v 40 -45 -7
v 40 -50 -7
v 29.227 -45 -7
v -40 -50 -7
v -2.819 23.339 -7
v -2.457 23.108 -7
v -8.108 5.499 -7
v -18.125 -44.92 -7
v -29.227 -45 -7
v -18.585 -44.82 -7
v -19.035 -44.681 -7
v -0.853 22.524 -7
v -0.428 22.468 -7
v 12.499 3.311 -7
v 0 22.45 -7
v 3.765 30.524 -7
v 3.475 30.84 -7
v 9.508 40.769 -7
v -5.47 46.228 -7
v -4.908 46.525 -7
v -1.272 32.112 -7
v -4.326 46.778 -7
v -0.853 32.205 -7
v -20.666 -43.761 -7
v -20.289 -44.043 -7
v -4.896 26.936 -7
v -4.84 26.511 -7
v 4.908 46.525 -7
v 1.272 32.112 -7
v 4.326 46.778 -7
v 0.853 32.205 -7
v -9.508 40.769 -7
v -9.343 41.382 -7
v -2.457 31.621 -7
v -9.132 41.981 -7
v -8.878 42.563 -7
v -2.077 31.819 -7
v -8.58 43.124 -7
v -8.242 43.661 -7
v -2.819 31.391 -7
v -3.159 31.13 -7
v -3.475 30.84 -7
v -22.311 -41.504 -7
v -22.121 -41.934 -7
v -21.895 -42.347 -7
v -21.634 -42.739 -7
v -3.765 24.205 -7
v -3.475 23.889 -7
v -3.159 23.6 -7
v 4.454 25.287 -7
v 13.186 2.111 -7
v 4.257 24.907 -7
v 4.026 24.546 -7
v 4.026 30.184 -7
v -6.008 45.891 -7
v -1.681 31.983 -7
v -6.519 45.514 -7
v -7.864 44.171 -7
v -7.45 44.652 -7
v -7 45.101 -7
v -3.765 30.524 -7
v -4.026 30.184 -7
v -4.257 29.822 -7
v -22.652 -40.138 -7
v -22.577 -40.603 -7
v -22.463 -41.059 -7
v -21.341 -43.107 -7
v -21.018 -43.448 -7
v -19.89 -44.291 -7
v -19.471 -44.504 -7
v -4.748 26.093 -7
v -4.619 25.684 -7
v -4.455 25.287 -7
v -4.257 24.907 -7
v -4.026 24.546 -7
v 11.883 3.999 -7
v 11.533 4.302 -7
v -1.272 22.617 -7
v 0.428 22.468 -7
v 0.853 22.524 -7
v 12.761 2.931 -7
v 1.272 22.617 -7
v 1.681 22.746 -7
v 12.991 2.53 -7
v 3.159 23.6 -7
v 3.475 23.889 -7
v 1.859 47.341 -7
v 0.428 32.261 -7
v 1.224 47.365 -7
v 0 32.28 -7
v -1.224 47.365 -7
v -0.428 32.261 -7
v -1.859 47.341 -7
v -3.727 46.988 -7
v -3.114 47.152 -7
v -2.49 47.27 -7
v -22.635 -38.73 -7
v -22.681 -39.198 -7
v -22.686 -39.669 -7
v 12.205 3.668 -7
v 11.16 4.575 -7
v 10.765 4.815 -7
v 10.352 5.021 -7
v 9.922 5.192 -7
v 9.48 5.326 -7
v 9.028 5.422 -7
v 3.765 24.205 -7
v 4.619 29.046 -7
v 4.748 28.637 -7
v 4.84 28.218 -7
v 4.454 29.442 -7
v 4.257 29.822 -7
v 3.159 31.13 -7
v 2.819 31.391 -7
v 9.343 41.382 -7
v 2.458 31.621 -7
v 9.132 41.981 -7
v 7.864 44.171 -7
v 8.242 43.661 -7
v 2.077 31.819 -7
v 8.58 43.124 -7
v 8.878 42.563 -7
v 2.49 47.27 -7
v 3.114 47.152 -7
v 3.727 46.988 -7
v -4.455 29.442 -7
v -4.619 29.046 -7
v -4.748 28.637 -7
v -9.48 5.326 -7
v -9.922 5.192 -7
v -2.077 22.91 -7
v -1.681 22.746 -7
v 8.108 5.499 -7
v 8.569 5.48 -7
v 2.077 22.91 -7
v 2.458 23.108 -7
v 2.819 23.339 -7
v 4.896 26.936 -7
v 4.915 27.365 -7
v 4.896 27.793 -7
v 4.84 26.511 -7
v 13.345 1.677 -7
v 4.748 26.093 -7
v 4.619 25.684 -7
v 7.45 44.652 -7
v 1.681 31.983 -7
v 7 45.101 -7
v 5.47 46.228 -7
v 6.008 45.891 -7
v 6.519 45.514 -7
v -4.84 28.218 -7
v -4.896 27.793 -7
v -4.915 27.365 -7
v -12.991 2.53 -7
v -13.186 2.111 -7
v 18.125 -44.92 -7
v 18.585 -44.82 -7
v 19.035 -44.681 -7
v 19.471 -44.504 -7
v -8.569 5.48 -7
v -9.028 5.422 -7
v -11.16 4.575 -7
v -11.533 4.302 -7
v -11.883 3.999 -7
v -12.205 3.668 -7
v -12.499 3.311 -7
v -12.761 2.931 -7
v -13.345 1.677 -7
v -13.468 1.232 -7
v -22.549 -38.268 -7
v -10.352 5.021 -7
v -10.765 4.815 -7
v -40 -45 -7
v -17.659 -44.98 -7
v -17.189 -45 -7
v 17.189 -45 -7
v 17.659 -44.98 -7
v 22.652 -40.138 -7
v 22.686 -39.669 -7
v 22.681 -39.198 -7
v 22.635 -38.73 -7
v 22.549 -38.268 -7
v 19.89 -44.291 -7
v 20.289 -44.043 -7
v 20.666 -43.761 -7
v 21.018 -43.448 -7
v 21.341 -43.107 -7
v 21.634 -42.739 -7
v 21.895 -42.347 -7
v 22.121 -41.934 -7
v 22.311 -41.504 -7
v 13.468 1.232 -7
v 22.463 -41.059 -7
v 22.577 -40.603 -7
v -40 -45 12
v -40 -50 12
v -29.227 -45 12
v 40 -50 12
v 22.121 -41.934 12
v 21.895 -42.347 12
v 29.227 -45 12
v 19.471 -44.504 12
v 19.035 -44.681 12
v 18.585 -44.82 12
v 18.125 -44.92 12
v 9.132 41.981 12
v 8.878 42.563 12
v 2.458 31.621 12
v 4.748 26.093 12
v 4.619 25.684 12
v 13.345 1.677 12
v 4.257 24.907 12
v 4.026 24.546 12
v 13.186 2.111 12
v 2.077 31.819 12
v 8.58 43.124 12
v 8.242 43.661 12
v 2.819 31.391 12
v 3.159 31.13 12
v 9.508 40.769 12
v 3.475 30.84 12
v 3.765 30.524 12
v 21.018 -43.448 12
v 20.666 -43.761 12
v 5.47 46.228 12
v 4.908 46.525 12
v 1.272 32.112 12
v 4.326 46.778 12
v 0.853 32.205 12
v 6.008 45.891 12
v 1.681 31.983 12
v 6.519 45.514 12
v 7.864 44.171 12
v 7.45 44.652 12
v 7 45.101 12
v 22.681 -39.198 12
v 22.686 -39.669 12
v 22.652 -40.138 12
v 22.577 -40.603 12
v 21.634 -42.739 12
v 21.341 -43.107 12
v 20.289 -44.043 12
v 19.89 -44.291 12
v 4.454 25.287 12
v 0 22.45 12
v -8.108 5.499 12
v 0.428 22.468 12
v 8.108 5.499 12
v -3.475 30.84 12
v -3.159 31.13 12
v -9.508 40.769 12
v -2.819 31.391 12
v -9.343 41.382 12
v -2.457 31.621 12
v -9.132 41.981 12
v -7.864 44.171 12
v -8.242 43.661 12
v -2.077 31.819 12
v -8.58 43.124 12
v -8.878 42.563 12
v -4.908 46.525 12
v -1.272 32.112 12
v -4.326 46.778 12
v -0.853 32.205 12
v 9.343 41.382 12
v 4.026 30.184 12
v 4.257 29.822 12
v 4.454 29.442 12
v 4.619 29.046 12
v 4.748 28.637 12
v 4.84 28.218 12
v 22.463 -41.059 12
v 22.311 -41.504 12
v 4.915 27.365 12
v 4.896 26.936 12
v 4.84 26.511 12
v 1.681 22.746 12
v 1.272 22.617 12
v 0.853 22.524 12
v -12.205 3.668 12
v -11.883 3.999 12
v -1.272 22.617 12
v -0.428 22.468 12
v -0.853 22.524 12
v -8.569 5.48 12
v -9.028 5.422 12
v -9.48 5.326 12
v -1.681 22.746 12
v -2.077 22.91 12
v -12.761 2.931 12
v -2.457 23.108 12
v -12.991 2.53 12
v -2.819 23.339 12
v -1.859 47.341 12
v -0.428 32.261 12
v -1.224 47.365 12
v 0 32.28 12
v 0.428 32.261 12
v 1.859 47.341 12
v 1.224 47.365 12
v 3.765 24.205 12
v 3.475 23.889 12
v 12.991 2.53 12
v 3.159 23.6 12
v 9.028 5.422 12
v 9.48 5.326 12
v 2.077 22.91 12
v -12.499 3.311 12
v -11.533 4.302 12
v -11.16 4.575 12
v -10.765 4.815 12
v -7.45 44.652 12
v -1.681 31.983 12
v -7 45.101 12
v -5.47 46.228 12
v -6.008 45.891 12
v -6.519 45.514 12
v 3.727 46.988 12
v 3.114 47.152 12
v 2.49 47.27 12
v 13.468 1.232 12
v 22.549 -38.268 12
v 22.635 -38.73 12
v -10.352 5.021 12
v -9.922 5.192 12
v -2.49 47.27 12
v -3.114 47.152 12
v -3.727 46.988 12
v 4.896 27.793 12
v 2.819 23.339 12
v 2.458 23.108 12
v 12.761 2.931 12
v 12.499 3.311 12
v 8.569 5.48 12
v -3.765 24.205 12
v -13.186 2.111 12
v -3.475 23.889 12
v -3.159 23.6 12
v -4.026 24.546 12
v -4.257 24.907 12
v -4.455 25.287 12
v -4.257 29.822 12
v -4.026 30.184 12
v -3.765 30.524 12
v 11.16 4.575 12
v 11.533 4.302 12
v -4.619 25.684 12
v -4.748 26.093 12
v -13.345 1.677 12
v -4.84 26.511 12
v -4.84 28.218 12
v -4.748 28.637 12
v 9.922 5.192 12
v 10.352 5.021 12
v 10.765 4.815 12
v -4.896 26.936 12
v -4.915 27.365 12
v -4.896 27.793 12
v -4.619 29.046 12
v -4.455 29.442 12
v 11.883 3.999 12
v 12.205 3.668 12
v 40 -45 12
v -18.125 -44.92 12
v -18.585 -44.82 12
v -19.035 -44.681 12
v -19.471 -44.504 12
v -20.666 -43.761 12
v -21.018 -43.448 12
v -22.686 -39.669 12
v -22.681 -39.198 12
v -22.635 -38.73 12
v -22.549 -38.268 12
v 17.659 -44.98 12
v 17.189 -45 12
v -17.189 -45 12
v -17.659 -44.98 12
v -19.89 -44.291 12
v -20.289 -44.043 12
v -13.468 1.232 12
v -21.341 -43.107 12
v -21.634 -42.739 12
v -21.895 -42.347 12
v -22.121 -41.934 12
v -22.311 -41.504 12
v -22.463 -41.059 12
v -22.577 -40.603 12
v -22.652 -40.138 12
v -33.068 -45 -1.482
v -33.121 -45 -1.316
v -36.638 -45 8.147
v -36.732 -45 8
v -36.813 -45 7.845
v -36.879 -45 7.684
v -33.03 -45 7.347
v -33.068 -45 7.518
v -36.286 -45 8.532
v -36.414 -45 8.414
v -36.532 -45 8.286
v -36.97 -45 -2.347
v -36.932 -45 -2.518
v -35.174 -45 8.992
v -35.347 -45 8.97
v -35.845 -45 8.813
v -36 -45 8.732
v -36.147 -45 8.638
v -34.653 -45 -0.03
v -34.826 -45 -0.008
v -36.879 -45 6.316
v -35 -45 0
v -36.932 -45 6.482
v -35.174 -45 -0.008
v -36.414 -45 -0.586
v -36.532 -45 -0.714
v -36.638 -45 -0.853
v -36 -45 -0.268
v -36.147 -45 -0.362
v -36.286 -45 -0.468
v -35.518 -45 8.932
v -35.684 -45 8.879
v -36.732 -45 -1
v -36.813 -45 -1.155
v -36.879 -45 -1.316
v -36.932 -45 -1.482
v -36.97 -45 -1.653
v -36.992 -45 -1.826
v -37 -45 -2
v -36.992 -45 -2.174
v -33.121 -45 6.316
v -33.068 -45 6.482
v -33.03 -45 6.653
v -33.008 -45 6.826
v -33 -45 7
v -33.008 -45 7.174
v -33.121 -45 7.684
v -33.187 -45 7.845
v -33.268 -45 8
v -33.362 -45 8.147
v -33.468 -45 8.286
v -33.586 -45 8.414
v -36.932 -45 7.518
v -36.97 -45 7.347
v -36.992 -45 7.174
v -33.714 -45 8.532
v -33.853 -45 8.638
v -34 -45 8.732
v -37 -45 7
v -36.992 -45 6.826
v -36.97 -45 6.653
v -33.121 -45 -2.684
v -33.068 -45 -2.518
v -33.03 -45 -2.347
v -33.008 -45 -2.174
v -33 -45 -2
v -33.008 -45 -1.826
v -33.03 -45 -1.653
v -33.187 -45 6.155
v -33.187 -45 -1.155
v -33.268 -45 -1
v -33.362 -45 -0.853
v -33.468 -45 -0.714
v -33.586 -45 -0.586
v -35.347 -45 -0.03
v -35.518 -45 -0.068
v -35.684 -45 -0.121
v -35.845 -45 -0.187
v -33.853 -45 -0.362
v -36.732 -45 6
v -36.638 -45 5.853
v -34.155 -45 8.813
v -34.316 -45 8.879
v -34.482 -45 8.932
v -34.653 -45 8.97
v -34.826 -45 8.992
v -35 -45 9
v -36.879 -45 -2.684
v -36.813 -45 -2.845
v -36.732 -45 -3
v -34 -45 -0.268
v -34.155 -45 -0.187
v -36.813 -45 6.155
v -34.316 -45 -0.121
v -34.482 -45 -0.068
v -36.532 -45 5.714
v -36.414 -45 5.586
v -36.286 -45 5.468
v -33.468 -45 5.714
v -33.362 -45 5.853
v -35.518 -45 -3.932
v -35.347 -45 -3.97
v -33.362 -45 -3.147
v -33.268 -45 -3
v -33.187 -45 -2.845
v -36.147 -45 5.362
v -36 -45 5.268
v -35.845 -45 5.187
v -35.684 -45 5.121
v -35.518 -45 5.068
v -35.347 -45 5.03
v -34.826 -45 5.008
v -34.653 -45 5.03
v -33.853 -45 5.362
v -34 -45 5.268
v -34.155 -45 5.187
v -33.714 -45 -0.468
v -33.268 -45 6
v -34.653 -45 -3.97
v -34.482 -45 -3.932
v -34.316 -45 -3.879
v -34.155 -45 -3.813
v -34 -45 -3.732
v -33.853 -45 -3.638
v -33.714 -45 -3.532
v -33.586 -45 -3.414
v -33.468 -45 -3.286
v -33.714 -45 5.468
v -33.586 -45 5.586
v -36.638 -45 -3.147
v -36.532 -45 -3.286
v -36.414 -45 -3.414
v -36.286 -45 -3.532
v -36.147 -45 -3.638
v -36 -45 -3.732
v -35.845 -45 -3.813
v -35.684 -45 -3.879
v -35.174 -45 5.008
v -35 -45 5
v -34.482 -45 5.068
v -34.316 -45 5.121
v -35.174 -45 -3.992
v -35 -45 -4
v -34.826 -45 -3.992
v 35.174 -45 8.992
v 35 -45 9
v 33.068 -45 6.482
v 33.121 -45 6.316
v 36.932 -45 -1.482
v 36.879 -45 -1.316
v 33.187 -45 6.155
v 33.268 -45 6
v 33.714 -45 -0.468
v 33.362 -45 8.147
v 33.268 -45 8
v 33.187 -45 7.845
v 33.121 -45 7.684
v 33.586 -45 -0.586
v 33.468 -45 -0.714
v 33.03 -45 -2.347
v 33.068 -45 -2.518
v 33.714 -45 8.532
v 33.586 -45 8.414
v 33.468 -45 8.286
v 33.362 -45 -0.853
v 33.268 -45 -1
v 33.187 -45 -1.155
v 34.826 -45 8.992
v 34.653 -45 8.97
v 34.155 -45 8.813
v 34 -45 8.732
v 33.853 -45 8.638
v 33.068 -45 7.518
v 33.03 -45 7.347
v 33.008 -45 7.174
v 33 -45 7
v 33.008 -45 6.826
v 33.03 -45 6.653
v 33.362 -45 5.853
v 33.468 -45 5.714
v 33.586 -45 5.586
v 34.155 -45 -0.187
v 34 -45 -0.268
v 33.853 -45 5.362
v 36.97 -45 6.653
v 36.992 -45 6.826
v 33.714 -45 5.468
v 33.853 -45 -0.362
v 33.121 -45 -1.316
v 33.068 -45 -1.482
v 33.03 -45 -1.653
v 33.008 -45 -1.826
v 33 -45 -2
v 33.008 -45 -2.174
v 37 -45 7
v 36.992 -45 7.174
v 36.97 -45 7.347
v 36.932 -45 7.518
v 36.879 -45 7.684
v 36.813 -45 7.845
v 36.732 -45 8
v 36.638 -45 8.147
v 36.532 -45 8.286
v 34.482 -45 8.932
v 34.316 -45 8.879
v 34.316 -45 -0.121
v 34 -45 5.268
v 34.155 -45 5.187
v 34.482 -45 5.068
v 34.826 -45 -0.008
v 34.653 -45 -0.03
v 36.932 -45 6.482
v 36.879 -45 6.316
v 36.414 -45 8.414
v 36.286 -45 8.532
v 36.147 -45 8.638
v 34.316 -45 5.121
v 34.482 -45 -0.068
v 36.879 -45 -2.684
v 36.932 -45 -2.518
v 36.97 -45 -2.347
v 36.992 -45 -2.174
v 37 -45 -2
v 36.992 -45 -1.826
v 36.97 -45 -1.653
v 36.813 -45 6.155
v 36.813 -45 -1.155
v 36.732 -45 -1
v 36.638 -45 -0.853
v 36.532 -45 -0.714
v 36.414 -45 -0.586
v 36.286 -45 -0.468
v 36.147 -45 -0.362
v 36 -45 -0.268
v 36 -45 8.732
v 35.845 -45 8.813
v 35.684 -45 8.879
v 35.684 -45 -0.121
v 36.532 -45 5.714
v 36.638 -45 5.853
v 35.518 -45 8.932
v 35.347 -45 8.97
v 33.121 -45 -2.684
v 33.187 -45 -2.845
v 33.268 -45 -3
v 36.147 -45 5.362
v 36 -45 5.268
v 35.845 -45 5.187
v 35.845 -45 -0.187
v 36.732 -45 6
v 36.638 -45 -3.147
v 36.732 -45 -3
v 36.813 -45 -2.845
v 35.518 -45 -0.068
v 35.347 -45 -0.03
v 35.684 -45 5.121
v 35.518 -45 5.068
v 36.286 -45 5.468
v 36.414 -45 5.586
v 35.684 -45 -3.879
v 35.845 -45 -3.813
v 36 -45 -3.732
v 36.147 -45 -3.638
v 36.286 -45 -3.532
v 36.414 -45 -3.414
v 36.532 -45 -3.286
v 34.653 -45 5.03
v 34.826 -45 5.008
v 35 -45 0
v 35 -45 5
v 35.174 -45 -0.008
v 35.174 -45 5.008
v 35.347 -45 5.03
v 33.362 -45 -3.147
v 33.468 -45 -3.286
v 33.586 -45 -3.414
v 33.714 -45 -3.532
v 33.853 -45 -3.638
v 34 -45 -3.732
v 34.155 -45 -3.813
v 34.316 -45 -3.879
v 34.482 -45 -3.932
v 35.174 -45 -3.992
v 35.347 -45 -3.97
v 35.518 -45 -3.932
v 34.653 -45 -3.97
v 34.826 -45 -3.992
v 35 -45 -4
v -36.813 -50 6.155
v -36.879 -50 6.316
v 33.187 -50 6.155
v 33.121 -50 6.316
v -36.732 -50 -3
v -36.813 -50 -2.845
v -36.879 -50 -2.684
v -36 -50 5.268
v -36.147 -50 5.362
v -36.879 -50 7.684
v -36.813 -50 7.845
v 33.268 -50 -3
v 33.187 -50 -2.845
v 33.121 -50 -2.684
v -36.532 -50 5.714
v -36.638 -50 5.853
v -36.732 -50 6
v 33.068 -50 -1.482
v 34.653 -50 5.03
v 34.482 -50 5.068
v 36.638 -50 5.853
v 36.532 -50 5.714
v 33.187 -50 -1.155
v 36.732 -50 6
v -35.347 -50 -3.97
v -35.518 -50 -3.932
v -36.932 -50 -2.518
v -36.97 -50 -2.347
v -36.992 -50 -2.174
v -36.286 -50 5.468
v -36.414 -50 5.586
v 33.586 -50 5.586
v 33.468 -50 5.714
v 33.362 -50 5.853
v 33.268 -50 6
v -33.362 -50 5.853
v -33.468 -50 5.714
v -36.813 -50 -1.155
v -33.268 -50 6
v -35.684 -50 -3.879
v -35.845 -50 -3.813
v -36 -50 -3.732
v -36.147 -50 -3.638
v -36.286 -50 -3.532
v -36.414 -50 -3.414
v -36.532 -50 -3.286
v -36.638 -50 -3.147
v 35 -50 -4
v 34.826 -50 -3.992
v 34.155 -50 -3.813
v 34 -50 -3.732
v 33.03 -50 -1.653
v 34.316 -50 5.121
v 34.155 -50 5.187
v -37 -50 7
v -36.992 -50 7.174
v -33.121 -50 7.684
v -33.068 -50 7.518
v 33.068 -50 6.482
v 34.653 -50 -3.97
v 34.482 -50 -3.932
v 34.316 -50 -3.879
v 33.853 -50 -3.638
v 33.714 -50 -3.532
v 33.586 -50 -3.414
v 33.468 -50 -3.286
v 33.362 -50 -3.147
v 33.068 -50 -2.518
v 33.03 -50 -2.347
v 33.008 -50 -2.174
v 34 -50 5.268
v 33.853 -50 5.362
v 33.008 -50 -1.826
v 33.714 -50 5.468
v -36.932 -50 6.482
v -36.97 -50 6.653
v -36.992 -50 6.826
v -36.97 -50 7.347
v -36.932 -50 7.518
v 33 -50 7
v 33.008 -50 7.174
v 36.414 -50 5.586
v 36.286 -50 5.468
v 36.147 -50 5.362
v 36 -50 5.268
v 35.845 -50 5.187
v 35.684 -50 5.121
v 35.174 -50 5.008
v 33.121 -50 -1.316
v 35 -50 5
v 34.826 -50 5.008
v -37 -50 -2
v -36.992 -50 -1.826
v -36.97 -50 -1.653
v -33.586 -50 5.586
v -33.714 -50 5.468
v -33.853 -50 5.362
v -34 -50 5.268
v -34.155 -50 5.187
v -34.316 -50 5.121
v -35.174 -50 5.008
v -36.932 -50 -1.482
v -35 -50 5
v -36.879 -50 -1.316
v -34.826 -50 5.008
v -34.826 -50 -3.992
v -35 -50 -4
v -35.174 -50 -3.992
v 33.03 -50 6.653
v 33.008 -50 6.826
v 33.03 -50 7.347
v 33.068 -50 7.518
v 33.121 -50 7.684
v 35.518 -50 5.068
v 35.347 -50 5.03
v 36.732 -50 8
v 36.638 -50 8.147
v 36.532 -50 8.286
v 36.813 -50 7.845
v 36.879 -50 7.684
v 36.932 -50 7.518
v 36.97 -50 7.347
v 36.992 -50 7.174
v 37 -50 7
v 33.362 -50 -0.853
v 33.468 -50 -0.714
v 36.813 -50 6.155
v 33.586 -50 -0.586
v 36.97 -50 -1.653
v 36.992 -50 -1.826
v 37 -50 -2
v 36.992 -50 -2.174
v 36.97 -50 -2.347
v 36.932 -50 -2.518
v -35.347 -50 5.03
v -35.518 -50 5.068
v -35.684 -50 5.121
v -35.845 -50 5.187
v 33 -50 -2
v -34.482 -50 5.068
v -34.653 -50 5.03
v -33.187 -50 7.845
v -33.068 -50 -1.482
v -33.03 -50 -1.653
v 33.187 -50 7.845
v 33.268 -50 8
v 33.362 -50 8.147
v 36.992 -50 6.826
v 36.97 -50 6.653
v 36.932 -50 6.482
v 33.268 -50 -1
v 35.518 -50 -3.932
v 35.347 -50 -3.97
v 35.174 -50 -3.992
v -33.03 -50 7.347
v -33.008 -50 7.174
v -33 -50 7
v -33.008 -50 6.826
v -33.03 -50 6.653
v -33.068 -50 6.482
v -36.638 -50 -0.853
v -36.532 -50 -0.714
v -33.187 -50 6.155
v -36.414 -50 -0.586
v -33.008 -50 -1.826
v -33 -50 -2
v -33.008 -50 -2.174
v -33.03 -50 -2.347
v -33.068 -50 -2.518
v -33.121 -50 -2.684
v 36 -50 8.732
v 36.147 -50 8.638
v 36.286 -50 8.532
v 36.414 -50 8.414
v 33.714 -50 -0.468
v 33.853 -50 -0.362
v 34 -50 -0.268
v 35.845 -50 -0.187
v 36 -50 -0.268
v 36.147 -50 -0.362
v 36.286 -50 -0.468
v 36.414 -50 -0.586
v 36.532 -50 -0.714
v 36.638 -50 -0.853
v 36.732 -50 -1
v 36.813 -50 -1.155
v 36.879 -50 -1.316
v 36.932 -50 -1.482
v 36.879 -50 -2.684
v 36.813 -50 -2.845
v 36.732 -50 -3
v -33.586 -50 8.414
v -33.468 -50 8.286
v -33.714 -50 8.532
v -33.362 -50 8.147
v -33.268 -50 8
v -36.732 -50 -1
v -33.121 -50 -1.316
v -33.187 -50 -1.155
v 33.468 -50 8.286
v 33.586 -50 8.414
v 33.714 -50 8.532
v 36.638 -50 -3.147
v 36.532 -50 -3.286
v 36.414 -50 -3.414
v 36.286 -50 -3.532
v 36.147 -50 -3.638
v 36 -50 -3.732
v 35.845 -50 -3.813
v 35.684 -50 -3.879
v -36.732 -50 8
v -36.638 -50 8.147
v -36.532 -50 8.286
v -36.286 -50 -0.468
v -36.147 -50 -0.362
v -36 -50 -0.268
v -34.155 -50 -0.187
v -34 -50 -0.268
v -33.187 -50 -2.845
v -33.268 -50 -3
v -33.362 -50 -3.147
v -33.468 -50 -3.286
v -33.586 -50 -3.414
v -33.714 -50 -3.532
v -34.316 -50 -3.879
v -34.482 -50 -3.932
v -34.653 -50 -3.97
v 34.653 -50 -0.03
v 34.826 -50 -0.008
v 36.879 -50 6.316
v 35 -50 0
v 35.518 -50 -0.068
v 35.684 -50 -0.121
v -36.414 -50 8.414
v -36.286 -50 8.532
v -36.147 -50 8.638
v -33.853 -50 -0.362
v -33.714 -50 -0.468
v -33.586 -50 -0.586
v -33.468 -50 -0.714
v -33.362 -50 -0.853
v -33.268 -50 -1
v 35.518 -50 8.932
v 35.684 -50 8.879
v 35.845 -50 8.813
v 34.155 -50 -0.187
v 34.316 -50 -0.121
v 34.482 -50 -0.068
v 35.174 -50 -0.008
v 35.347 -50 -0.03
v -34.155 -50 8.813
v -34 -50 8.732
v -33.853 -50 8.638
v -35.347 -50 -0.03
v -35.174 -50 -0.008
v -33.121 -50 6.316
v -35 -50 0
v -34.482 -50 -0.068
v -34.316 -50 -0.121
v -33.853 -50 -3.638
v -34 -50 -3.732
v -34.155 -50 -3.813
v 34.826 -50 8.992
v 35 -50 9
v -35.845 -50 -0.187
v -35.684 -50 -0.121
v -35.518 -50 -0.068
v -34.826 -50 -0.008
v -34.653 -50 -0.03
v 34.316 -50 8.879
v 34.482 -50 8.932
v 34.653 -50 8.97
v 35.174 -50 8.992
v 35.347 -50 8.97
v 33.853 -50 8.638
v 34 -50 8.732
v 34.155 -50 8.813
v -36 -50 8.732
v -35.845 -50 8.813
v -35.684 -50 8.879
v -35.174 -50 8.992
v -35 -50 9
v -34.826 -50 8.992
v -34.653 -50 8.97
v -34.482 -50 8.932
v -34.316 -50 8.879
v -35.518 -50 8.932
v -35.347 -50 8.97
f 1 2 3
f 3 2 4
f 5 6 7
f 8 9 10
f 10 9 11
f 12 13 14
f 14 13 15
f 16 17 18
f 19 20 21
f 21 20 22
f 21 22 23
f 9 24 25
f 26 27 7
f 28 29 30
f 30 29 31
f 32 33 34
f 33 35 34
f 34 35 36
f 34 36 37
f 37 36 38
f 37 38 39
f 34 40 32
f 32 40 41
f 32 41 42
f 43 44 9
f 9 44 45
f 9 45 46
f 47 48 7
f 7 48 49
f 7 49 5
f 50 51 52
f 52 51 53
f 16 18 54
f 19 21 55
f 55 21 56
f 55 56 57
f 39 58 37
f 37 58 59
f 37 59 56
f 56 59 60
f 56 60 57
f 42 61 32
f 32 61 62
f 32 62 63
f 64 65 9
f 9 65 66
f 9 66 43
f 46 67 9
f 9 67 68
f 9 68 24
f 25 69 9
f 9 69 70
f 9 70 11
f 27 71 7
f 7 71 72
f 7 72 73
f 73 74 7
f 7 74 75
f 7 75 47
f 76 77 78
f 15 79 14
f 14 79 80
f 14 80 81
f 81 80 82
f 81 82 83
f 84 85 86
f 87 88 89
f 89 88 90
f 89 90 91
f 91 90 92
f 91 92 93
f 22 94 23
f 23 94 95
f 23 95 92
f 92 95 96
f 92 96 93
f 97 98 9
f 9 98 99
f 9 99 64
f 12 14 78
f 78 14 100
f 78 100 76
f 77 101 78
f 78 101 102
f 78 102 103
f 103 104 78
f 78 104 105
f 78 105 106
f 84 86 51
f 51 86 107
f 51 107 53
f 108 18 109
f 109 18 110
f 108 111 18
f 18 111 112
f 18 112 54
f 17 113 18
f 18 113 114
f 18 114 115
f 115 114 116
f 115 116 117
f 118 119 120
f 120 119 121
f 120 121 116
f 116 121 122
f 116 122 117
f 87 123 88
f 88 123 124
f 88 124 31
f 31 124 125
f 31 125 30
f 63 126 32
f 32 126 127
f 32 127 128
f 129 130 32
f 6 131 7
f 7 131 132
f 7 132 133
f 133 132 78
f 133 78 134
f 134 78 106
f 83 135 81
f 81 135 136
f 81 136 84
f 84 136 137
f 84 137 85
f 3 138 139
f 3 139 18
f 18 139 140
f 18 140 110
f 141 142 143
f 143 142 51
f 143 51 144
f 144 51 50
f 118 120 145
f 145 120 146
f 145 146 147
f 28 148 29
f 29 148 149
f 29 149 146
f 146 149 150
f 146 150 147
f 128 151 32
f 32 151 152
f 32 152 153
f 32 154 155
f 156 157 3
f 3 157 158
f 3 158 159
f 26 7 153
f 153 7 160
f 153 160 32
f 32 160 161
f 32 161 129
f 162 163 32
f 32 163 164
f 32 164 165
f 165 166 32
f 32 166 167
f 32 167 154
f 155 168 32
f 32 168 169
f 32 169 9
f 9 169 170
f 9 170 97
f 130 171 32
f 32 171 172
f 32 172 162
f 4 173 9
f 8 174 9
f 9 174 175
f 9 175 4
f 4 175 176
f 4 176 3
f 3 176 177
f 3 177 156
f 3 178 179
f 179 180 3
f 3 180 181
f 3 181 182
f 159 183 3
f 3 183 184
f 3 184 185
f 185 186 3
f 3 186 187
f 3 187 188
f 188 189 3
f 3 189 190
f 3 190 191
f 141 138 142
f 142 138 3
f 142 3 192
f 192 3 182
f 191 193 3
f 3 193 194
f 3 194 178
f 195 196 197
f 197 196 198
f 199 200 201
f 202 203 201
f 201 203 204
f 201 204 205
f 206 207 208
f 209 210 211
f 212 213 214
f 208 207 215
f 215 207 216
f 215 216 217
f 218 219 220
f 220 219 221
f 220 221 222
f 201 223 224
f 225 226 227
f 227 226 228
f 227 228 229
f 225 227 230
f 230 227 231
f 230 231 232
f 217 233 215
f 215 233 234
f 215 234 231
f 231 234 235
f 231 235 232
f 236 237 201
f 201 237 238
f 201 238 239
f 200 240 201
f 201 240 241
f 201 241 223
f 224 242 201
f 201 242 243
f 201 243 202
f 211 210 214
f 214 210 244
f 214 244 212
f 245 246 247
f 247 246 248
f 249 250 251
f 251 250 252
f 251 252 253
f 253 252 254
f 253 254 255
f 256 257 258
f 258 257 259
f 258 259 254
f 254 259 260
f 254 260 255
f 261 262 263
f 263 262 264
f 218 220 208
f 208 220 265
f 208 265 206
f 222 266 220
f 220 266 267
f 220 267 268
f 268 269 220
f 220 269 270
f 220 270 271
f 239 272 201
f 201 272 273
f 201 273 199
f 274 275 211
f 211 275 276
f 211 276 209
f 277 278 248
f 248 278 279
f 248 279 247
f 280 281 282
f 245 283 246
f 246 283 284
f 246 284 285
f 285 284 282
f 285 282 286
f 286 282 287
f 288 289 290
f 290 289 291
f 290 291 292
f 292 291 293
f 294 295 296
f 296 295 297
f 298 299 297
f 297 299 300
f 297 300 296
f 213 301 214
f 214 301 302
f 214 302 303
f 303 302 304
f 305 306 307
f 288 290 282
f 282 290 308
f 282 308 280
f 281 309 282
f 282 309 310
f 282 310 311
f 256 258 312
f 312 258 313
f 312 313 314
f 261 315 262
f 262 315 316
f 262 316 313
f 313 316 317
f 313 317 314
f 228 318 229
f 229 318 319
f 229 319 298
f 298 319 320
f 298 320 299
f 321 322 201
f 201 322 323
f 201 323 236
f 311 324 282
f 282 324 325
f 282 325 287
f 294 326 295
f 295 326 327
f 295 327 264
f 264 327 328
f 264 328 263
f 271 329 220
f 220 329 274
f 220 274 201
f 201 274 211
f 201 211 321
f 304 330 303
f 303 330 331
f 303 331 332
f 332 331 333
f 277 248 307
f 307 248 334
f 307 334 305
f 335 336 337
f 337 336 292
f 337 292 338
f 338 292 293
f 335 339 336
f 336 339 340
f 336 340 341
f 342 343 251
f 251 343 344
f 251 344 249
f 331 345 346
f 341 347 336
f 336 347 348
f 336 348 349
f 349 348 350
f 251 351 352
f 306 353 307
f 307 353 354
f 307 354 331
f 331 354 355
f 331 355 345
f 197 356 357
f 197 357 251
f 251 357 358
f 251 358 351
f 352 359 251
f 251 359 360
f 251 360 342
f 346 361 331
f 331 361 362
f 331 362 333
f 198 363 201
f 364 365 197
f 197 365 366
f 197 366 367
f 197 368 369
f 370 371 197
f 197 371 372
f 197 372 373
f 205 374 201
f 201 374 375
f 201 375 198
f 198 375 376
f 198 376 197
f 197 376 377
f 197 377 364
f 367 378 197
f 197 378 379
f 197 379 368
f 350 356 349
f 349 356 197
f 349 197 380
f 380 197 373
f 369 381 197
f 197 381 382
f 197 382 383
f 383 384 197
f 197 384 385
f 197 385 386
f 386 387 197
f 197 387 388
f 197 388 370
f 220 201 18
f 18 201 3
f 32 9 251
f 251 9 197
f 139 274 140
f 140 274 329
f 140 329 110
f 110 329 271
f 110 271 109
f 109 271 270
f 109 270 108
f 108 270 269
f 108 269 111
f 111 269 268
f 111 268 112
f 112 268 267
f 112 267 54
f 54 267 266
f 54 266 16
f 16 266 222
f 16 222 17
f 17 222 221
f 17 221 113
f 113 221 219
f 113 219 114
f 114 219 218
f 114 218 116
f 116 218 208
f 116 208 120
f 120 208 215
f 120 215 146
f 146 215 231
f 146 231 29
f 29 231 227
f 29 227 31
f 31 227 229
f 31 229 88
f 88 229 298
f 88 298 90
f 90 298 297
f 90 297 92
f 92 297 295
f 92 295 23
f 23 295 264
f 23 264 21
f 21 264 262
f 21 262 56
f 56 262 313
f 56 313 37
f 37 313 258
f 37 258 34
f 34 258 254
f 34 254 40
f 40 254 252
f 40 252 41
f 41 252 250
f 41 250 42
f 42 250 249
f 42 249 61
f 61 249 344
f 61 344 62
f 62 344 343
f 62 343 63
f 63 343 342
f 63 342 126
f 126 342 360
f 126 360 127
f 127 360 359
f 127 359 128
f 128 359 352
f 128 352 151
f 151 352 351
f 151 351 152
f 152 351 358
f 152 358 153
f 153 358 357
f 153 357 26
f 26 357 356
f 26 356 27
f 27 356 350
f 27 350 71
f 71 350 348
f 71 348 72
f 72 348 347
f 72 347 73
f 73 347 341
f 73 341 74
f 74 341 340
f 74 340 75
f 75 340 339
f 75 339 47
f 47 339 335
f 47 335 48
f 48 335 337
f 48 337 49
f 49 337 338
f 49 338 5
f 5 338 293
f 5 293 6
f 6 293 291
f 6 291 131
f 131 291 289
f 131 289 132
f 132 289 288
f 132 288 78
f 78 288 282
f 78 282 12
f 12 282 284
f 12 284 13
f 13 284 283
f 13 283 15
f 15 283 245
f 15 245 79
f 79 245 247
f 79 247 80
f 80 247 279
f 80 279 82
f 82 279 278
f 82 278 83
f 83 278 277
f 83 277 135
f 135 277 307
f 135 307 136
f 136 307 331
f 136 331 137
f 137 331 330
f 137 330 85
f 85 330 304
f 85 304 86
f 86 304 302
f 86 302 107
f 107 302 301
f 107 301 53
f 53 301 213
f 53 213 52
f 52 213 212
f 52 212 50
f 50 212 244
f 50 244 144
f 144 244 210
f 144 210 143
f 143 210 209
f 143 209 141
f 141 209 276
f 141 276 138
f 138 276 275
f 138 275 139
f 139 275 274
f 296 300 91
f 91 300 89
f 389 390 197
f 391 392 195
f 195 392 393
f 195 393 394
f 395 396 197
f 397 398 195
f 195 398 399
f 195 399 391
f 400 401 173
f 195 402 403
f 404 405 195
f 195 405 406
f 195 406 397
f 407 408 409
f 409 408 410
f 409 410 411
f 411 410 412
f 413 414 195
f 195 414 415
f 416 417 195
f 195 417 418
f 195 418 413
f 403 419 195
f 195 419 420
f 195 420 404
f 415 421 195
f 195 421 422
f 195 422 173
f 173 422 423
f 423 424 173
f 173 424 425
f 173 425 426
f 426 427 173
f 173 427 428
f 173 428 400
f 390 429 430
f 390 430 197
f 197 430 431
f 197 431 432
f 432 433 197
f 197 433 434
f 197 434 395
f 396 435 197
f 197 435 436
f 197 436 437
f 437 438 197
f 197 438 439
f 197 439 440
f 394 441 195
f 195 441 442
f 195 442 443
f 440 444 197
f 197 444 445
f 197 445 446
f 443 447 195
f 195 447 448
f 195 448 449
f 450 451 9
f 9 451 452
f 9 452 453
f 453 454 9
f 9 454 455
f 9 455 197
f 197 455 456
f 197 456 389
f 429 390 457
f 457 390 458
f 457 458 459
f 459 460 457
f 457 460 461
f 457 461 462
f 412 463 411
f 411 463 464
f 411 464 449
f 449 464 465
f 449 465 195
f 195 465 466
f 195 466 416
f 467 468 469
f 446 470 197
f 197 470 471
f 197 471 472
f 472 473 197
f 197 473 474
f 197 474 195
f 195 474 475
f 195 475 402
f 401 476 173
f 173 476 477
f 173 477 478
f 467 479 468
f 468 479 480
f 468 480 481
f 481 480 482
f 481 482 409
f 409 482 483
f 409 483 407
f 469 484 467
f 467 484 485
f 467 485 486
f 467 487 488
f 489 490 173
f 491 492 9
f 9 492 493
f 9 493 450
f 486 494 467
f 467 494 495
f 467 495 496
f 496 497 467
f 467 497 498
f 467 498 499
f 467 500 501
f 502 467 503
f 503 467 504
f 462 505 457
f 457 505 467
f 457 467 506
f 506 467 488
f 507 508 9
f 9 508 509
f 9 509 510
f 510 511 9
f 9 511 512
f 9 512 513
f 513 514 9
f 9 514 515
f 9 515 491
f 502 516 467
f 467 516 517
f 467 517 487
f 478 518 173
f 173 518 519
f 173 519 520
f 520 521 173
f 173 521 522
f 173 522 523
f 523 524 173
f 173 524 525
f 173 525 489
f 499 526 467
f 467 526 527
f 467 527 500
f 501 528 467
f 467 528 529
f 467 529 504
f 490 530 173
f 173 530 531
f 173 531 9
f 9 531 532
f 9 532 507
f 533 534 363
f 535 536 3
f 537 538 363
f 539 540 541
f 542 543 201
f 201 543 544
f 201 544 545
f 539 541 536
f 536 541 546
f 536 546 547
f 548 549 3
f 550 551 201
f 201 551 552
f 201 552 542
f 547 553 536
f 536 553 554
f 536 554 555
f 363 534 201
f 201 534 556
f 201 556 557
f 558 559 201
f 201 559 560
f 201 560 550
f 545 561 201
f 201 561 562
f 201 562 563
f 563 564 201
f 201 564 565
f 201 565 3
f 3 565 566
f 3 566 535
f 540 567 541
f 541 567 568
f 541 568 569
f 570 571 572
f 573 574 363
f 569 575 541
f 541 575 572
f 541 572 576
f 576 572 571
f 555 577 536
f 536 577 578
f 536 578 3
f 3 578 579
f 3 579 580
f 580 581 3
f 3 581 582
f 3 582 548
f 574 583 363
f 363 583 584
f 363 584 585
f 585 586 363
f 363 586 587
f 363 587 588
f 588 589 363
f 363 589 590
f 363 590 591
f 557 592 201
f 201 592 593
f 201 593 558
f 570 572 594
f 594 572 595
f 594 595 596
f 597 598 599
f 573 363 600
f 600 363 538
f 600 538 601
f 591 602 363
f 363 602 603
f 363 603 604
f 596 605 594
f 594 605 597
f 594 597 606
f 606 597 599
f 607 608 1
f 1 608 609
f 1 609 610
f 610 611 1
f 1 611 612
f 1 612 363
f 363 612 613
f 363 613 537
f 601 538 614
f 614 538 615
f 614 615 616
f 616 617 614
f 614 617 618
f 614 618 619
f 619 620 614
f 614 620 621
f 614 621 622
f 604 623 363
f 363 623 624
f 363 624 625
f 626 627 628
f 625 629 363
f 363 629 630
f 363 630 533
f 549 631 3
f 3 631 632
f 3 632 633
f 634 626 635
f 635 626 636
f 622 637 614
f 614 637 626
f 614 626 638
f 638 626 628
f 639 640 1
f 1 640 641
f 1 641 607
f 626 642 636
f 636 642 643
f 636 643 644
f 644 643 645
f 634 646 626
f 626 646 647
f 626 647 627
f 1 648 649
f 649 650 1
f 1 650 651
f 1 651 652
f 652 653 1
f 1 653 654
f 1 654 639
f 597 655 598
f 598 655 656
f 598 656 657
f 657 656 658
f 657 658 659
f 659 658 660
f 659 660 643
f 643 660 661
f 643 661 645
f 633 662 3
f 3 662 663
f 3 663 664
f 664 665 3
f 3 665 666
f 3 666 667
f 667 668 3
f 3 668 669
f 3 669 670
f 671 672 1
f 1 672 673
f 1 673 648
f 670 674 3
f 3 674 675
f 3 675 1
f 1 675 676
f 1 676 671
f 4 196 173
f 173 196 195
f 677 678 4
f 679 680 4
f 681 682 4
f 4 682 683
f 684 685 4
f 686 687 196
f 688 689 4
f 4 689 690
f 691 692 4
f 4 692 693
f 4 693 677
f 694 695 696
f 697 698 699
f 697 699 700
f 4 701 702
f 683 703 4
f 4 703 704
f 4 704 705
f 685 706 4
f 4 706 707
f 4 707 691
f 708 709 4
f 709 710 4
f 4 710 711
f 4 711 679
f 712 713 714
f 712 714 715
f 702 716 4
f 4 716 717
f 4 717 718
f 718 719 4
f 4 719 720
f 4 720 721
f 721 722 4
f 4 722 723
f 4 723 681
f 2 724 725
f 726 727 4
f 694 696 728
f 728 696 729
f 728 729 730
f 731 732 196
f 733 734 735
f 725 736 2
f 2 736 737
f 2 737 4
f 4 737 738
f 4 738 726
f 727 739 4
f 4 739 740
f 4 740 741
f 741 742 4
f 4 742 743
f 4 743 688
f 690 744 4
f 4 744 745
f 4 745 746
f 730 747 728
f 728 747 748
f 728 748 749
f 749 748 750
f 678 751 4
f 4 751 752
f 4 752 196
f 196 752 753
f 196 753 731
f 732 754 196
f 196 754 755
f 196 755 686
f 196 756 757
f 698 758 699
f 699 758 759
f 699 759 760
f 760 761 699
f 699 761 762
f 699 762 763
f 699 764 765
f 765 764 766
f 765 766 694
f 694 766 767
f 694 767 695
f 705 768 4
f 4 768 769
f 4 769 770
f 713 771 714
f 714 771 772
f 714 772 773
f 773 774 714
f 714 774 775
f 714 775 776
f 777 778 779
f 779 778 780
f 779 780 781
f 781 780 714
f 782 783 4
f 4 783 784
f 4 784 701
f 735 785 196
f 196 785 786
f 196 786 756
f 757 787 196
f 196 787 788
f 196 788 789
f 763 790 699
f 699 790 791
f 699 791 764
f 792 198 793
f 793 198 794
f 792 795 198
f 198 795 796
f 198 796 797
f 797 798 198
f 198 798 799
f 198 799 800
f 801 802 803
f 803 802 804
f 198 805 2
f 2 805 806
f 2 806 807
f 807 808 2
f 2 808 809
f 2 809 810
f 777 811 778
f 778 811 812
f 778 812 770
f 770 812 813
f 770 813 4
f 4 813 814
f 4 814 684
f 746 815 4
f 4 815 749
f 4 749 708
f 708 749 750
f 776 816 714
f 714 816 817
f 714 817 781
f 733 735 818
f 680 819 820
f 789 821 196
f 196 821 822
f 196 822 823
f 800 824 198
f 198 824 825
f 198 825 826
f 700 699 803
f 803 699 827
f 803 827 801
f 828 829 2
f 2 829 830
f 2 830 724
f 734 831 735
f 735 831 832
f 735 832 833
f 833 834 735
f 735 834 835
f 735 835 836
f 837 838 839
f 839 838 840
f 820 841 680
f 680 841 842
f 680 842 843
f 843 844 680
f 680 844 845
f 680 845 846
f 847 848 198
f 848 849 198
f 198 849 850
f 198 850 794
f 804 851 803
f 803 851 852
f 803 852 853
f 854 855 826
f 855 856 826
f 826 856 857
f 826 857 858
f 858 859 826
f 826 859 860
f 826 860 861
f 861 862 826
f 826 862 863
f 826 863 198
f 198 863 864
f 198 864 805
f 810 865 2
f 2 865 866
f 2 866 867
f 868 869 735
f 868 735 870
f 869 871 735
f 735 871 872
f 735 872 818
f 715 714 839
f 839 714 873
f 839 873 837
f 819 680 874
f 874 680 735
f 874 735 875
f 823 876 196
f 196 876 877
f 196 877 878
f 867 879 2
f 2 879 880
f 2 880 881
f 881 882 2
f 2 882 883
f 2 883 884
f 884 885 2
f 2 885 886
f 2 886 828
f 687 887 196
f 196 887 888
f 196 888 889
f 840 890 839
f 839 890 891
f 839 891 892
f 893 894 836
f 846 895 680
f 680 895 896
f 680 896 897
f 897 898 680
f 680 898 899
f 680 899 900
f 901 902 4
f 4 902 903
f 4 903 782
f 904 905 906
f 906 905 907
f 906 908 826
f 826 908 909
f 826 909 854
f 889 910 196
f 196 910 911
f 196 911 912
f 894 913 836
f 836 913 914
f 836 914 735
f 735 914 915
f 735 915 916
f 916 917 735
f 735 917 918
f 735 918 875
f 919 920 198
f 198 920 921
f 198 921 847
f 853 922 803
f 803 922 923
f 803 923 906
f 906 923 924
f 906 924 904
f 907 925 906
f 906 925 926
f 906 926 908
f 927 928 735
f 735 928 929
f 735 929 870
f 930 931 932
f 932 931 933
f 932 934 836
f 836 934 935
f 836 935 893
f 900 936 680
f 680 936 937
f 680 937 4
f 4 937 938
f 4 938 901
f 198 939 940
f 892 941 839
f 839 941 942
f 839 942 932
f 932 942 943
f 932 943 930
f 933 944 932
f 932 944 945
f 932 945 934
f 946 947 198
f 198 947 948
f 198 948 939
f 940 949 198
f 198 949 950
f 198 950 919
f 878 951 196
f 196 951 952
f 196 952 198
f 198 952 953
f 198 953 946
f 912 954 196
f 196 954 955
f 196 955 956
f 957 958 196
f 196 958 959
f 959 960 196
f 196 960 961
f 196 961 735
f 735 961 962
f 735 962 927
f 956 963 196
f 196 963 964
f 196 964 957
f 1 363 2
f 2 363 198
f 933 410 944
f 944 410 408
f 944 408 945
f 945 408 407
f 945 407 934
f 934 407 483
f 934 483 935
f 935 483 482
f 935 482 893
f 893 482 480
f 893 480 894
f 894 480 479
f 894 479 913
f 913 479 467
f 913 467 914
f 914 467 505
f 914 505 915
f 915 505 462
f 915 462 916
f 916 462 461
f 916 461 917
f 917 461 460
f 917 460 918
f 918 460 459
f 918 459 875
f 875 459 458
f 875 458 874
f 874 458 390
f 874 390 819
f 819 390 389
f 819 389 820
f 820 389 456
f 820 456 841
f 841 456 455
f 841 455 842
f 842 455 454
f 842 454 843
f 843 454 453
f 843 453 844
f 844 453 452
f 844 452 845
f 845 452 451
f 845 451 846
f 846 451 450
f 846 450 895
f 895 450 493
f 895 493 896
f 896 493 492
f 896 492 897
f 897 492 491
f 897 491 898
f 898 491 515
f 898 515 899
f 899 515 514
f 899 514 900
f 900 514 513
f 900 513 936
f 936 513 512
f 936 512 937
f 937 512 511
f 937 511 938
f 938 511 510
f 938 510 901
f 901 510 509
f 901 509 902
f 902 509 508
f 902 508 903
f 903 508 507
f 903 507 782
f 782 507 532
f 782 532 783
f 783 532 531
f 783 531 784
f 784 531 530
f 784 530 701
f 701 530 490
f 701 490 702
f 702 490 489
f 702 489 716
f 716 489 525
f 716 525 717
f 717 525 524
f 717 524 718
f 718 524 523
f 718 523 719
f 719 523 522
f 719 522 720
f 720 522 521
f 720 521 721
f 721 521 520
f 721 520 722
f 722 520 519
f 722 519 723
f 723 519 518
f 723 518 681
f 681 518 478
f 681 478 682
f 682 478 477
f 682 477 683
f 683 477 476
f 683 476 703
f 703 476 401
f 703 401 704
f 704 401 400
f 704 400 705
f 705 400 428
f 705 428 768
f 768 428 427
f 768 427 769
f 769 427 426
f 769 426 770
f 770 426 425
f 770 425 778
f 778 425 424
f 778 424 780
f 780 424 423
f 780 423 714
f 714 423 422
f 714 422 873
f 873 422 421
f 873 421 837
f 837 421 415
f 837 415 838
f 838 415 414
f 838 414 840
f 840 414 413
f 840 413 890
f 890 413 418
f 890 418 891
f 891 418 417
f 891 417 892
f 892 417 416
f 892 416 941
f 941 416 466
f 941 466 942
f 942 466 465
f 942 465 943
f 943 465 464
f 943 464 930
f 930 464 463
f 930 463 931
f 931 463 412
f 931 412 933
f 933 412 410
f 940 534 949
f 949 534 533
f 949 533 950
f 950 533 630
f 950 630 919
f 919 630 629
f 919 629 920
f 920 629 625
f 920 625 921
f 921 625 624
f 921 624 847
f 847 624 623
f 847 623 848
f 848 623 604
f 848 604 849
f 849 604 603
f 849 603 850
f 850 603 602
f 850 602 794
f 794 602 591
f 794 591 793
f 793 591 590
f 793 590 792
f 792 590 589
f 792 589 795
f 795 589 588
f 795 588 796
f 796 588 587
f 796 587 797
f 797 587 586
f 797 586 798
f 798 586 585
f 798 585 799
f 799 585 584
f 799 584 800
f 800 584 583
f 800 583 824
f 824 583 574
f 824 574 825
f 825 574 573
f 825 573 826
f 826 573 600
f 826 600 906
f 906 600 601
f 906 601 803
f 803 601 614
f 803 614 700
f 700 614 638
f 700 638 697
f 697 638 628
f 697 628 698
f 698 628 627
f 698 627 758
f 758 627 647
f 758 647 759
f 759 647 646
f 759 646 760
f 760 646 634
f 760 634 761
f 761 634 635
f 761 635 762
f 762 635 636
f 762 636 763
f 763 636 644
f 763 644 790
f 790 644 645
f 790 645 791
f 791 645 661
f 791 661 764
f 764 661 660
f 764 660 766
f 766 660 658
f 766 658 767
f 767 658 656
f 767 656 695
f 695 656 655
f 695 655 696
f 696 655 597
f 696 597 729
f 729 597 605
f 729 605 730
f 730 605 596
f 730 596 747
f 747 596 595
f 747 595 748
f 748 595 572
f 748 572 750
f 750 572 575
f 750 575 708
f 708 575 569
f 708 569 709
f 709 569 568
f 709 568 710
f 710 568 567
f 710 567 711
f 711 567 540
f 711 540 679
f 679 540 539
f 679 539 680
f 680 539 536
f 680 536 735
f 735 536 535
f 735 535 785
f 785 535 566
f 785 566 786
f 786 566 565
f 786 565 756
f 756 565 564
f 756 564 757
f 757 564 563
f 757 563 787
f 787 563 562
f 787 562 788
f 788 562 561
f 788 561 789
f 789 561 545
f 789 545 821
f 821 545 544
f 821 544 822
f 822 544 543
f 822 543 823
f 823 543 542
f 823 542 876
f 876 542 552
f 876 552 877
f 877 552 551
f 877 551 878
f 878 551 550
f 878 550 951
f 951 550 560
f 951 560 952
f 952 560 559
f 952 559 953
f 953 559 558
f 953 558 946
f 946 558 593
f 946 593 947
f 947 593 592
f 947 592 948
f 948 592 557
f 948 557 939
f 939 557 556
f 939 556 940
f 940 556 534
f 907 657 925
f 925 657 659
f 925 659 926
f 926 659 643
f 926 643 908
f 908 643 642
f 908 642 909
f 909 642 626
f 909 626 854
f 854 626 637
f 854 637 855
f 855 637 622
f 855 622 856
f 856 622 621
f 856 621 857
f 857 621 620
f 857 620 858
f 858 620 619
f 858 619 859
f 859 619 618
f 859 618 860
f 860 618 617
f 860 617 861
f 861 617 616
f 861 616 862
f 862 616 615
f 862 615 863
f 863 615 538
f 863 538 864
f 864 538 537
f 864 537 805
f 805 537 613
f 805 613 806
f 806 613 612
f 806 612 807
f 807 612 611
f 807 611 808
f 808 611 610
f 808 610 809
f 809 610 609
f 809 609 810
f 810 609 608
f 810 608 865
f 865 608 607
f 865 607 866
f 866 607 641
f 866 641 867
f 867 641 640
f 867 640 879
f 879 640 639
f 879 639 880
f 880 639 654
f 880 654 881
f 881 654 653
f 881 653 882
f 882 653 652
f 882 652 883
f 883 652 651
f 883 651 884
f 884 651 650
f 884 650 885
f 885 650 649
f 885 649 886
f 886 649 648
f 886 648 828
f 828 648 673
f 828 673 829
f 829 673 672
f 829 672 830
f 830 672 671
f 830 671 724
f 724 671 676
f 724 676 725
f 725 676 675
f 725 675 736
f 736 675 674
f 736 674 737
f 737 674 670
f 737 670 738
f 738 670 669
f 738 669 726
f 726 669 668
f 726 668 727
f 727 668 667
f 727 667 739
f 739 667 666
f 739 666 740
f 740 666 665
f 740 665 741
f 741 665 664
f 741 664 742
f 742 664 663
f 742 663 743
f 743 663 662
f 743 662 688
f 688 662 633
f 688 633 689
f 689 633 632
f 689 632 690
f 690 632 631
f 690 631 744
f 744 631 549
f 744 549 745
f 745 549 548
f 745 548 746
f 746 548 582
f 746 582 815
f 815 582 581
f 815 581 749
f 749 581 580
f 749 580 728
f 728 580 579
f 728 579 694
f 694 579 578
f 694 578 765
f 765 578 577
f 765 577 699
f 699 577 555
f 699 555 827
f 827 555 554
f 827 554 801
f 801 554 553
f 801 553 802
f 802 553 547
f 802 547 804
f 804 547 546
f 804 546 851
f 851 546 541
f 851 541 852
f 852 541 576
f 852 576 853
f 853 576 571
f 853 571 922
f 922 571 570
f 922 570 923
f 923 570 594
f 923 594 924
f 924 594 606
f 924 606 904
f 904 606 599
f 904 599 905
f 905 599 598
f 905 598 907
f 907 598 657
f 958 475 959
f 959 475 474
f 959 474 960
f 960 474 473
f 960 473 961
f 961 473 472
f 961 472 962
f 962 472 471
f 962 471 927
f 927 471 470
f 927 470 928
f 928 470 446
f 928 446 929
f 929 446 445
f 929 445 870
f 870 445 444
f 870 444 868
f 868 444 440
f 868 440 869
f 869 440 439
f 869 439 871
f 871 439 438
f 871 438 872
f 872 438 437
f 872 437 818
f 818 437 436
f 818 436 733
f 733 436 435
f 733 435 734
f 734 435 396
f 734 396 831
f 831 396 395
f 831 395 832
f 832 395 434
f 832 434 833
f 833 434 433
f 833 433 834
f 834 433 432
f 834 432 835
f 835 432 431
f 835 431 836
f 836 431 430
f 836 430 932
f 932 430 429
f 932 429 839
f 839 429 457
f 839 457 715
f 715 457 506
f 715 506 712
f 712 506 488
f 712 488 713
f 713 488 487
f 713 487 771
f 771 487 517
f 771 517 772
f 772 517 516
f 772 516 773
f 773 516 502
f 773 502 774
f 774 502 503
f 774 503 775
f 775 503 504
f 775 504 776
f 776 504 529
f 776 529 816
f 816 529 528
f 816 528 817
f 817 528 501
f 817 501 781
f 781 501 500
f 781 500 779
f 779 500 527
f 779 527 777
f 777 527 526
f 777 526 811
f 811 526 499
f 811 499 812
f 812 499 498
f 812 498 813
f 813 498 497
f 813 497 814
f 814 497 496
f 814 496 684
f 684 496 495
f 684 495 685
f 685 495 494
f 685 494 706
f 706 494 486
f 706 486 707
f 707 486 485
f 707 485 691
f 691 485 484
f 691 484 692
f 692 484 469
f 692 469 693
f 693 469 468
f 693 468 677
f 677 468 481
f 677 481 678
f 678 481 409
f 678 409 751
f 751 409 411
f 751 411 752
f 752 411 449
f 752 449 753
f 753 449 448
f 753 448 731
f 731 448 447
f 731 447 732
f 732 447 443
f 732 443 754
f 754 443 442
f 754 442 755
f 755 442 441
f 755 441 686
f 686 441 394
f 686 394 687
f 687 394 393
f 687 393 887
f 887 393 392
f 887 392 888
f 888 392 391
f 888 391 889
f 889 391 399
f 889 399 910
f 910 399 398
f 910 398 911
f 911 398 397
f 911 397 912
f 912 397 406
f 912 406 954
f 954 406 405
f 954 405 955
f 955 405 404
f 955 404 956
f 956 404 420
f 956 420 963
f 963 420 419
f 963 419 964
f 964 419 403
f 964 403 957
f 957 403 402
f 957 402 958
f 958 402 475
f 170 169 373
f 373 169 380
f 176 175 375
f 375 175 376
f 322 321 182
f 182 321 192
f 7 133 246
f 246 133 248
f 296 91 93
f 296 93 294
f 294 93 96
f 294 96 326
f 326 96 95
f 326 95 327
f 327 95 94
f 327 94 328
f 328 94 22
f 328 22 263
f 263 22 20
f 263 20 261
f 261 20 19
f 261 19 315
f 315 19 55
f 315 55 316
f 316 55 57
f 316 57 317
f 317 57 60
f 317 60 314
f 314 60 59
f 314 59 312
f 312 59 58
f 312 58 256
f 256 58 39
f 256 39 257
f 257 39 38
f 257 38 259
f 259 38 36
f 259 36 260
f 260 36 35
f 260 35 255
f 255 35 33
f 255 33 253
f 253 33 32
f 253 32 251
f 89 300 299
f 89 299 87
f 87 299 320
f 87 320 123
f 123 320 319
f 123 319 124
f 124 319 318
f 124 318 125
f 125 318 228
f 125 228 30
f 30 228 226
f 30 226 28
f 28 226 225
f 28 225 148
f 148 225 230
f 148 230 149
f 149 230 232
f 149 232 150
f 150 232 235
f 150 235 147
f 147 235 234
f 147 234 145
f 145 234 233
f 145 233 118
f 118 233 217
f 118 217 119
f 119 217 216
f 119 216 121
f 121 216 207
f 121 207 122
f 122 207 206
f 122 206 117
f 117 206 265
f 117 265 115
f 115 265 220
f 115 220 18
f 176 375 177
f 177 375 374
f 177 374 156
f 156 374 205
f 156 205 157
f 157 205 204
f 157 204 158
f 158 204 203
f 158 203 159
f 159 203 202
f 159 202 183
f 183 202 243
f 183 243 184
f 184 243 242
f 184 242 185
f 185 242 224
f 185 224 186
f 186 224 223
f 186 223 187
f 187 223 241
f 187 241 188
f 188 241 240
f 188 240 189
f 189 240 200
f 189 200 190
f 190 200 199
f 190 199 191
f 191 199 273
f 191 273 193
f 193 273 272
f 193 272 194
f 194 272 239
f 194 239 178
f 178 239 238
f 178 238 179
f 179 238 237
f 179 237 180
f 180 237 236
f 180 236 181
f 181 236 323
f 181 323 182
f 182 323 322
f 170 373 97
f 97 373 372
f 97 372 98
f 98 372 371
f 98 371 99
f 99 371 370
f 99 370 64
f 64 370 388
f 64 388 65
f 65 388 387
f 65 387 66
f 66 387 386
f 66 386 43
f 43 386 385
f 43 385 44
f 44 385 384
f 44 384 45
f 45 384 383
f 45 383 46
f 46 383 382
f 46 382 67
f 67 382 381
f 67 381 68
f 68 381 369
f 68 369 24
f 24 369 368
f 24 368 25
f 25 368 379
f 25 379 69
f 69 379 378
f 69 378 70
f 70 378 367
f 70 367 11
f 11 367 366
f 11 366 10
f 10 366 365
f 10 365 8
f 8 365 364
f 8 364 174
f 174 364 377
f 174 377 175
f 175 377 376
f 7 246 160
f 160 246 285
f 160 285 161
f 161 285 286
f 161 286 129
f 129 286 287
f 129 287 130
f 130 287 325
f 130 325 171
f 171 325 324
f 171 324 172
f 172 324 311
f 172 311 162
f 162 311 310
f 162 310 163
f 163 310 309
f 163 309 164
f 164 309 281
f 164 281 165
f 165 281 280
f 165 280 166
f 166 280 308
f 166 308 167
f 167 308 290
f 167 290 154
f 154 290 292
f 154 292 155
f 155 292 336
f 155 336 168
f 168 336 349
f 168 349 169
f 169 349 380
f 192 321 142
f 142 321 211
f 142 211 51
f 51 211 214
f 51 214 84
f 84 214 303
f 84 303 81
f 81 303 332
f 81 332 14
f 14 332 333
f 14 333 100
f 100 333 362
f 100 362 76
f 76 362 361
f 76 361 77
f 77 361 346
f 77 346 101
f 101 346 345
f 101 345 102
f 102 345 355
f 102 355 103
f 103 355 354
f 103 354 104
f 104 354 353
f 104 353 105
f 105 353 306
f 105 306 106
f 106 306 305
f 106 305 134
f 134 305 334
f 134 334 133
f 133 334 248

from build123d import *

# Parameters (mm, degrees)
BOSS_EXTRUDE1_DEPTH            = 12
BOSS_EXTRUDE1_DEPTH_BACK       = 7
SKETCH1_R                      = 4.915
BOSS_EXTRUDE2_DEPTH            = 12
BOSS_EXTRUDE2_DEPTH_BACK       = 7
SKETCH1_3_W                    = 80
SKETCH1_3_H                    = 5
CUT_EXTRUDE1_REACH             = 103.367
SKETCH2_R                      = 2
CUT_EXTRUDE2_REACH             = 67.146
CUT_EXTRUDE2_DIRECTION_2_REACH = 67.146
FILLET3_R                      = 8.5
FILLET4_R                      = 5.5


with BuildPart() as part:
    # Sketch1 → Boss-Extrude1 (new, two sides: drawn at the far end of the back side and taken through both)
    with BuildSketch(Plane.XY.offset(-BOSS_EXTRUDE1_DEPTH_BACK)):
        Polygon((7.991845682, 47.36466233), (-7.991845682, 47.36466233), (-29.227261436, -45), (29.227261436, -45), align=None)
        with Locations((0, 27.36466233)):
            Circle(SKETCH1_R, mode=Mode.SUBTRACT)
    extrude(amount=BOSS_EXTRUDE1_DEPTH + BOSS_EXTRUDE1_DEPTH_BACK)

    # Sketch1<3> → Boss-Extrude2 (add, two sides: drawn at the far end of the back side and taken through both)
    with BuildSketch(Plane.XY.offset(-BOSS_EXTRUDE2_DEPTH_BACK)):
        with Locations((0, -47.5)):
            Rectangle(SKETCH1_3_W, SKETCH1_3_H)
    extrude(amount=BOSS_EXTRUDE2_DEPTH + BOSS_EXTRUDE2_DEPTH_BACK)

    # Sketch2 → Cut-Extrude1 (cut, up to next)
    with BuildSketch(Plane(origin=(0, -45, 0), x_dir=(1, 0, 0), z_dir=(0, 1, 0)), mode=Mode.PRIVATE) as cut_extrude1_sk1:
        with Locations(Location((-35, 2, 0), (0, 0, 270))):
            Circle(SKETCH2_R)
    cut_extrude1_tool1 = extrude(cut_extrude1_sk1.sketch, amount=-CUT_EXTRUDE1_REACH, mode=Mode.PRIVATE) & part.part
    # Sketch2 → Cut-Extrude1 (cut, up to next)
    with BuildSketch(Plane(origin=(0, -45, 0), x_dir=(1, 0, 0), z_dir=(0, 1, 0)), mode=Mode.PRIVATE) as cut_extrude1_sk2:
        with Locations(Location((-35, -7, 0), (0, 0, 270))):
            Circle(SKETCH2_R)
    cut_extrude1_tool2 = extrude(cut_extrude1_sk2.sketch, amount=-CUT_EXTRUDE1_REACH, mode=Mode.PRIVATE) & part.part
    # Sketch2 → Cut-Extrude1 (cut, up to next)
    with BuildSketch(Plane(origin=(0, -45, 0), x_dir=(1, 0, 0), z_dir=(0, 1, 0)), mode=Mode.PRIVATE) as cut_extrude1_sk3:
        with Locations(Location((35, 2, 0), (0, 0, 270))):
            Circle(SKETCH2_R)
    cut_extrude1_tool3 = extrude(cut_extrude1_sk3.sketch, amount=-CUT_EXTRUDE1_REACH, mode=Mode.PRIVATE) & part.part
    # Sketch2 → Cut-Extrude1 (cut, up to next)
    with BuildSketch(Plane(origin=(0, -45, 0), x_dir=(1, 0, 0), z_dir=(0, 1, 0)), mode=Mode.PRIVATE) as cut_extrude1_sk4:
        with Locations(Location((35, -7, 0), (0, 0, 270))):
            Circle(SKETCH2_R)
    cut_extrude1_tool4 = extrude(cut_extrude1_sk4.sketch, amount=-CUT_EXTRUDE1_REACH, mode=Mode.PRIVATE) & part.part
    add(cut_extrude1_tool1.solids().sort_by_distance((-35, -45, -2))[0], mode=Mode.SUBTRACT)
    add(cut_extrude1_tool2.solids().sort_by_distance((-35, -45, 7))[0], mode=Mode.SUBTRACT)
    add(cut_extrude1_tool3.solids().sort_by_distance((35, -45, -2))[0], mode=Mode.SUBTRACT)
    add(cut_extrude1_tool4.solids().sort_by_distance((35, -45, 7))[0], mode=Mode.SUBTRACT)

    # Sketch3 → Cut-Extrude2 (cut, up to next)
    with BuildSketch(Plane.XY, mode=Mode.PRIVATE) as cut_extrude2_sk1:
        Polygon((-12.48657179, 5.499434813), (12.48657179, 5.499434813), (24.096818248, -45), (-24.096818248, -45), align=None)
    cut_extrude2_tool1 = extrude(cut_extrude2_sk1.sketch, amount=-CUT_EXTRUDE2_REACH, mode=Mode.PRIVATE) & part.part
    add(cut_extrude2_tool1.solids().sort_by_distance((0, -22.421399, 0))[0], mode=Mode.SUBTRACT)

    # Sketch3 → Cut-Extrude2 direction 2 (cut, up to next)
    with BuildSketch(Plane.XY, mode=Mode.PRIVATE) as cut_extrude2_direction_2_sk1:
        Polygon((-12.48657179, 5.499434813), (12.48657179, 5.499434813), (24.096818248, -45), (-24.096818248, -45), align=None)
    cut_extrude2_direction_2_tool1 = extrude(cut_extrude2_direction_2_sk1.sketch, amount=CUT_EXTRUDE2_DIRECTION_2_REACH, mode=Mode.PRIVATE) & part.part
    add(cut_extrude2_direction_2_tool1.solids().sort_by_distance((0, -22.421399, 0))[0], mode=Mode.SUBTRACT)

    # Fillet3
    fillet3_edges = [part.edges().sort_by_distance(p)[0] for p in [
        (-7.991845682, 47.36466233, 2.5),
        (7.991845682, 47.36466233, 2.5),
    ]]
    fillet(fillet3_edges, radius=FILLET3_R)

    # Fillet4
    fillet4_edges = [part.edges().sort_by_distance(p)[0] for p in [
        (-12.48657179, 5.499434813, 2.5),
        (-24.096818248, -45, 2.5),
        (24.096818248, -45, 2.5),
        (12.48657179, 5.499434813, 2.5),
    ]]
    fillet(fillet4_edges, radius=FILLET4_R)


solid = part.part
